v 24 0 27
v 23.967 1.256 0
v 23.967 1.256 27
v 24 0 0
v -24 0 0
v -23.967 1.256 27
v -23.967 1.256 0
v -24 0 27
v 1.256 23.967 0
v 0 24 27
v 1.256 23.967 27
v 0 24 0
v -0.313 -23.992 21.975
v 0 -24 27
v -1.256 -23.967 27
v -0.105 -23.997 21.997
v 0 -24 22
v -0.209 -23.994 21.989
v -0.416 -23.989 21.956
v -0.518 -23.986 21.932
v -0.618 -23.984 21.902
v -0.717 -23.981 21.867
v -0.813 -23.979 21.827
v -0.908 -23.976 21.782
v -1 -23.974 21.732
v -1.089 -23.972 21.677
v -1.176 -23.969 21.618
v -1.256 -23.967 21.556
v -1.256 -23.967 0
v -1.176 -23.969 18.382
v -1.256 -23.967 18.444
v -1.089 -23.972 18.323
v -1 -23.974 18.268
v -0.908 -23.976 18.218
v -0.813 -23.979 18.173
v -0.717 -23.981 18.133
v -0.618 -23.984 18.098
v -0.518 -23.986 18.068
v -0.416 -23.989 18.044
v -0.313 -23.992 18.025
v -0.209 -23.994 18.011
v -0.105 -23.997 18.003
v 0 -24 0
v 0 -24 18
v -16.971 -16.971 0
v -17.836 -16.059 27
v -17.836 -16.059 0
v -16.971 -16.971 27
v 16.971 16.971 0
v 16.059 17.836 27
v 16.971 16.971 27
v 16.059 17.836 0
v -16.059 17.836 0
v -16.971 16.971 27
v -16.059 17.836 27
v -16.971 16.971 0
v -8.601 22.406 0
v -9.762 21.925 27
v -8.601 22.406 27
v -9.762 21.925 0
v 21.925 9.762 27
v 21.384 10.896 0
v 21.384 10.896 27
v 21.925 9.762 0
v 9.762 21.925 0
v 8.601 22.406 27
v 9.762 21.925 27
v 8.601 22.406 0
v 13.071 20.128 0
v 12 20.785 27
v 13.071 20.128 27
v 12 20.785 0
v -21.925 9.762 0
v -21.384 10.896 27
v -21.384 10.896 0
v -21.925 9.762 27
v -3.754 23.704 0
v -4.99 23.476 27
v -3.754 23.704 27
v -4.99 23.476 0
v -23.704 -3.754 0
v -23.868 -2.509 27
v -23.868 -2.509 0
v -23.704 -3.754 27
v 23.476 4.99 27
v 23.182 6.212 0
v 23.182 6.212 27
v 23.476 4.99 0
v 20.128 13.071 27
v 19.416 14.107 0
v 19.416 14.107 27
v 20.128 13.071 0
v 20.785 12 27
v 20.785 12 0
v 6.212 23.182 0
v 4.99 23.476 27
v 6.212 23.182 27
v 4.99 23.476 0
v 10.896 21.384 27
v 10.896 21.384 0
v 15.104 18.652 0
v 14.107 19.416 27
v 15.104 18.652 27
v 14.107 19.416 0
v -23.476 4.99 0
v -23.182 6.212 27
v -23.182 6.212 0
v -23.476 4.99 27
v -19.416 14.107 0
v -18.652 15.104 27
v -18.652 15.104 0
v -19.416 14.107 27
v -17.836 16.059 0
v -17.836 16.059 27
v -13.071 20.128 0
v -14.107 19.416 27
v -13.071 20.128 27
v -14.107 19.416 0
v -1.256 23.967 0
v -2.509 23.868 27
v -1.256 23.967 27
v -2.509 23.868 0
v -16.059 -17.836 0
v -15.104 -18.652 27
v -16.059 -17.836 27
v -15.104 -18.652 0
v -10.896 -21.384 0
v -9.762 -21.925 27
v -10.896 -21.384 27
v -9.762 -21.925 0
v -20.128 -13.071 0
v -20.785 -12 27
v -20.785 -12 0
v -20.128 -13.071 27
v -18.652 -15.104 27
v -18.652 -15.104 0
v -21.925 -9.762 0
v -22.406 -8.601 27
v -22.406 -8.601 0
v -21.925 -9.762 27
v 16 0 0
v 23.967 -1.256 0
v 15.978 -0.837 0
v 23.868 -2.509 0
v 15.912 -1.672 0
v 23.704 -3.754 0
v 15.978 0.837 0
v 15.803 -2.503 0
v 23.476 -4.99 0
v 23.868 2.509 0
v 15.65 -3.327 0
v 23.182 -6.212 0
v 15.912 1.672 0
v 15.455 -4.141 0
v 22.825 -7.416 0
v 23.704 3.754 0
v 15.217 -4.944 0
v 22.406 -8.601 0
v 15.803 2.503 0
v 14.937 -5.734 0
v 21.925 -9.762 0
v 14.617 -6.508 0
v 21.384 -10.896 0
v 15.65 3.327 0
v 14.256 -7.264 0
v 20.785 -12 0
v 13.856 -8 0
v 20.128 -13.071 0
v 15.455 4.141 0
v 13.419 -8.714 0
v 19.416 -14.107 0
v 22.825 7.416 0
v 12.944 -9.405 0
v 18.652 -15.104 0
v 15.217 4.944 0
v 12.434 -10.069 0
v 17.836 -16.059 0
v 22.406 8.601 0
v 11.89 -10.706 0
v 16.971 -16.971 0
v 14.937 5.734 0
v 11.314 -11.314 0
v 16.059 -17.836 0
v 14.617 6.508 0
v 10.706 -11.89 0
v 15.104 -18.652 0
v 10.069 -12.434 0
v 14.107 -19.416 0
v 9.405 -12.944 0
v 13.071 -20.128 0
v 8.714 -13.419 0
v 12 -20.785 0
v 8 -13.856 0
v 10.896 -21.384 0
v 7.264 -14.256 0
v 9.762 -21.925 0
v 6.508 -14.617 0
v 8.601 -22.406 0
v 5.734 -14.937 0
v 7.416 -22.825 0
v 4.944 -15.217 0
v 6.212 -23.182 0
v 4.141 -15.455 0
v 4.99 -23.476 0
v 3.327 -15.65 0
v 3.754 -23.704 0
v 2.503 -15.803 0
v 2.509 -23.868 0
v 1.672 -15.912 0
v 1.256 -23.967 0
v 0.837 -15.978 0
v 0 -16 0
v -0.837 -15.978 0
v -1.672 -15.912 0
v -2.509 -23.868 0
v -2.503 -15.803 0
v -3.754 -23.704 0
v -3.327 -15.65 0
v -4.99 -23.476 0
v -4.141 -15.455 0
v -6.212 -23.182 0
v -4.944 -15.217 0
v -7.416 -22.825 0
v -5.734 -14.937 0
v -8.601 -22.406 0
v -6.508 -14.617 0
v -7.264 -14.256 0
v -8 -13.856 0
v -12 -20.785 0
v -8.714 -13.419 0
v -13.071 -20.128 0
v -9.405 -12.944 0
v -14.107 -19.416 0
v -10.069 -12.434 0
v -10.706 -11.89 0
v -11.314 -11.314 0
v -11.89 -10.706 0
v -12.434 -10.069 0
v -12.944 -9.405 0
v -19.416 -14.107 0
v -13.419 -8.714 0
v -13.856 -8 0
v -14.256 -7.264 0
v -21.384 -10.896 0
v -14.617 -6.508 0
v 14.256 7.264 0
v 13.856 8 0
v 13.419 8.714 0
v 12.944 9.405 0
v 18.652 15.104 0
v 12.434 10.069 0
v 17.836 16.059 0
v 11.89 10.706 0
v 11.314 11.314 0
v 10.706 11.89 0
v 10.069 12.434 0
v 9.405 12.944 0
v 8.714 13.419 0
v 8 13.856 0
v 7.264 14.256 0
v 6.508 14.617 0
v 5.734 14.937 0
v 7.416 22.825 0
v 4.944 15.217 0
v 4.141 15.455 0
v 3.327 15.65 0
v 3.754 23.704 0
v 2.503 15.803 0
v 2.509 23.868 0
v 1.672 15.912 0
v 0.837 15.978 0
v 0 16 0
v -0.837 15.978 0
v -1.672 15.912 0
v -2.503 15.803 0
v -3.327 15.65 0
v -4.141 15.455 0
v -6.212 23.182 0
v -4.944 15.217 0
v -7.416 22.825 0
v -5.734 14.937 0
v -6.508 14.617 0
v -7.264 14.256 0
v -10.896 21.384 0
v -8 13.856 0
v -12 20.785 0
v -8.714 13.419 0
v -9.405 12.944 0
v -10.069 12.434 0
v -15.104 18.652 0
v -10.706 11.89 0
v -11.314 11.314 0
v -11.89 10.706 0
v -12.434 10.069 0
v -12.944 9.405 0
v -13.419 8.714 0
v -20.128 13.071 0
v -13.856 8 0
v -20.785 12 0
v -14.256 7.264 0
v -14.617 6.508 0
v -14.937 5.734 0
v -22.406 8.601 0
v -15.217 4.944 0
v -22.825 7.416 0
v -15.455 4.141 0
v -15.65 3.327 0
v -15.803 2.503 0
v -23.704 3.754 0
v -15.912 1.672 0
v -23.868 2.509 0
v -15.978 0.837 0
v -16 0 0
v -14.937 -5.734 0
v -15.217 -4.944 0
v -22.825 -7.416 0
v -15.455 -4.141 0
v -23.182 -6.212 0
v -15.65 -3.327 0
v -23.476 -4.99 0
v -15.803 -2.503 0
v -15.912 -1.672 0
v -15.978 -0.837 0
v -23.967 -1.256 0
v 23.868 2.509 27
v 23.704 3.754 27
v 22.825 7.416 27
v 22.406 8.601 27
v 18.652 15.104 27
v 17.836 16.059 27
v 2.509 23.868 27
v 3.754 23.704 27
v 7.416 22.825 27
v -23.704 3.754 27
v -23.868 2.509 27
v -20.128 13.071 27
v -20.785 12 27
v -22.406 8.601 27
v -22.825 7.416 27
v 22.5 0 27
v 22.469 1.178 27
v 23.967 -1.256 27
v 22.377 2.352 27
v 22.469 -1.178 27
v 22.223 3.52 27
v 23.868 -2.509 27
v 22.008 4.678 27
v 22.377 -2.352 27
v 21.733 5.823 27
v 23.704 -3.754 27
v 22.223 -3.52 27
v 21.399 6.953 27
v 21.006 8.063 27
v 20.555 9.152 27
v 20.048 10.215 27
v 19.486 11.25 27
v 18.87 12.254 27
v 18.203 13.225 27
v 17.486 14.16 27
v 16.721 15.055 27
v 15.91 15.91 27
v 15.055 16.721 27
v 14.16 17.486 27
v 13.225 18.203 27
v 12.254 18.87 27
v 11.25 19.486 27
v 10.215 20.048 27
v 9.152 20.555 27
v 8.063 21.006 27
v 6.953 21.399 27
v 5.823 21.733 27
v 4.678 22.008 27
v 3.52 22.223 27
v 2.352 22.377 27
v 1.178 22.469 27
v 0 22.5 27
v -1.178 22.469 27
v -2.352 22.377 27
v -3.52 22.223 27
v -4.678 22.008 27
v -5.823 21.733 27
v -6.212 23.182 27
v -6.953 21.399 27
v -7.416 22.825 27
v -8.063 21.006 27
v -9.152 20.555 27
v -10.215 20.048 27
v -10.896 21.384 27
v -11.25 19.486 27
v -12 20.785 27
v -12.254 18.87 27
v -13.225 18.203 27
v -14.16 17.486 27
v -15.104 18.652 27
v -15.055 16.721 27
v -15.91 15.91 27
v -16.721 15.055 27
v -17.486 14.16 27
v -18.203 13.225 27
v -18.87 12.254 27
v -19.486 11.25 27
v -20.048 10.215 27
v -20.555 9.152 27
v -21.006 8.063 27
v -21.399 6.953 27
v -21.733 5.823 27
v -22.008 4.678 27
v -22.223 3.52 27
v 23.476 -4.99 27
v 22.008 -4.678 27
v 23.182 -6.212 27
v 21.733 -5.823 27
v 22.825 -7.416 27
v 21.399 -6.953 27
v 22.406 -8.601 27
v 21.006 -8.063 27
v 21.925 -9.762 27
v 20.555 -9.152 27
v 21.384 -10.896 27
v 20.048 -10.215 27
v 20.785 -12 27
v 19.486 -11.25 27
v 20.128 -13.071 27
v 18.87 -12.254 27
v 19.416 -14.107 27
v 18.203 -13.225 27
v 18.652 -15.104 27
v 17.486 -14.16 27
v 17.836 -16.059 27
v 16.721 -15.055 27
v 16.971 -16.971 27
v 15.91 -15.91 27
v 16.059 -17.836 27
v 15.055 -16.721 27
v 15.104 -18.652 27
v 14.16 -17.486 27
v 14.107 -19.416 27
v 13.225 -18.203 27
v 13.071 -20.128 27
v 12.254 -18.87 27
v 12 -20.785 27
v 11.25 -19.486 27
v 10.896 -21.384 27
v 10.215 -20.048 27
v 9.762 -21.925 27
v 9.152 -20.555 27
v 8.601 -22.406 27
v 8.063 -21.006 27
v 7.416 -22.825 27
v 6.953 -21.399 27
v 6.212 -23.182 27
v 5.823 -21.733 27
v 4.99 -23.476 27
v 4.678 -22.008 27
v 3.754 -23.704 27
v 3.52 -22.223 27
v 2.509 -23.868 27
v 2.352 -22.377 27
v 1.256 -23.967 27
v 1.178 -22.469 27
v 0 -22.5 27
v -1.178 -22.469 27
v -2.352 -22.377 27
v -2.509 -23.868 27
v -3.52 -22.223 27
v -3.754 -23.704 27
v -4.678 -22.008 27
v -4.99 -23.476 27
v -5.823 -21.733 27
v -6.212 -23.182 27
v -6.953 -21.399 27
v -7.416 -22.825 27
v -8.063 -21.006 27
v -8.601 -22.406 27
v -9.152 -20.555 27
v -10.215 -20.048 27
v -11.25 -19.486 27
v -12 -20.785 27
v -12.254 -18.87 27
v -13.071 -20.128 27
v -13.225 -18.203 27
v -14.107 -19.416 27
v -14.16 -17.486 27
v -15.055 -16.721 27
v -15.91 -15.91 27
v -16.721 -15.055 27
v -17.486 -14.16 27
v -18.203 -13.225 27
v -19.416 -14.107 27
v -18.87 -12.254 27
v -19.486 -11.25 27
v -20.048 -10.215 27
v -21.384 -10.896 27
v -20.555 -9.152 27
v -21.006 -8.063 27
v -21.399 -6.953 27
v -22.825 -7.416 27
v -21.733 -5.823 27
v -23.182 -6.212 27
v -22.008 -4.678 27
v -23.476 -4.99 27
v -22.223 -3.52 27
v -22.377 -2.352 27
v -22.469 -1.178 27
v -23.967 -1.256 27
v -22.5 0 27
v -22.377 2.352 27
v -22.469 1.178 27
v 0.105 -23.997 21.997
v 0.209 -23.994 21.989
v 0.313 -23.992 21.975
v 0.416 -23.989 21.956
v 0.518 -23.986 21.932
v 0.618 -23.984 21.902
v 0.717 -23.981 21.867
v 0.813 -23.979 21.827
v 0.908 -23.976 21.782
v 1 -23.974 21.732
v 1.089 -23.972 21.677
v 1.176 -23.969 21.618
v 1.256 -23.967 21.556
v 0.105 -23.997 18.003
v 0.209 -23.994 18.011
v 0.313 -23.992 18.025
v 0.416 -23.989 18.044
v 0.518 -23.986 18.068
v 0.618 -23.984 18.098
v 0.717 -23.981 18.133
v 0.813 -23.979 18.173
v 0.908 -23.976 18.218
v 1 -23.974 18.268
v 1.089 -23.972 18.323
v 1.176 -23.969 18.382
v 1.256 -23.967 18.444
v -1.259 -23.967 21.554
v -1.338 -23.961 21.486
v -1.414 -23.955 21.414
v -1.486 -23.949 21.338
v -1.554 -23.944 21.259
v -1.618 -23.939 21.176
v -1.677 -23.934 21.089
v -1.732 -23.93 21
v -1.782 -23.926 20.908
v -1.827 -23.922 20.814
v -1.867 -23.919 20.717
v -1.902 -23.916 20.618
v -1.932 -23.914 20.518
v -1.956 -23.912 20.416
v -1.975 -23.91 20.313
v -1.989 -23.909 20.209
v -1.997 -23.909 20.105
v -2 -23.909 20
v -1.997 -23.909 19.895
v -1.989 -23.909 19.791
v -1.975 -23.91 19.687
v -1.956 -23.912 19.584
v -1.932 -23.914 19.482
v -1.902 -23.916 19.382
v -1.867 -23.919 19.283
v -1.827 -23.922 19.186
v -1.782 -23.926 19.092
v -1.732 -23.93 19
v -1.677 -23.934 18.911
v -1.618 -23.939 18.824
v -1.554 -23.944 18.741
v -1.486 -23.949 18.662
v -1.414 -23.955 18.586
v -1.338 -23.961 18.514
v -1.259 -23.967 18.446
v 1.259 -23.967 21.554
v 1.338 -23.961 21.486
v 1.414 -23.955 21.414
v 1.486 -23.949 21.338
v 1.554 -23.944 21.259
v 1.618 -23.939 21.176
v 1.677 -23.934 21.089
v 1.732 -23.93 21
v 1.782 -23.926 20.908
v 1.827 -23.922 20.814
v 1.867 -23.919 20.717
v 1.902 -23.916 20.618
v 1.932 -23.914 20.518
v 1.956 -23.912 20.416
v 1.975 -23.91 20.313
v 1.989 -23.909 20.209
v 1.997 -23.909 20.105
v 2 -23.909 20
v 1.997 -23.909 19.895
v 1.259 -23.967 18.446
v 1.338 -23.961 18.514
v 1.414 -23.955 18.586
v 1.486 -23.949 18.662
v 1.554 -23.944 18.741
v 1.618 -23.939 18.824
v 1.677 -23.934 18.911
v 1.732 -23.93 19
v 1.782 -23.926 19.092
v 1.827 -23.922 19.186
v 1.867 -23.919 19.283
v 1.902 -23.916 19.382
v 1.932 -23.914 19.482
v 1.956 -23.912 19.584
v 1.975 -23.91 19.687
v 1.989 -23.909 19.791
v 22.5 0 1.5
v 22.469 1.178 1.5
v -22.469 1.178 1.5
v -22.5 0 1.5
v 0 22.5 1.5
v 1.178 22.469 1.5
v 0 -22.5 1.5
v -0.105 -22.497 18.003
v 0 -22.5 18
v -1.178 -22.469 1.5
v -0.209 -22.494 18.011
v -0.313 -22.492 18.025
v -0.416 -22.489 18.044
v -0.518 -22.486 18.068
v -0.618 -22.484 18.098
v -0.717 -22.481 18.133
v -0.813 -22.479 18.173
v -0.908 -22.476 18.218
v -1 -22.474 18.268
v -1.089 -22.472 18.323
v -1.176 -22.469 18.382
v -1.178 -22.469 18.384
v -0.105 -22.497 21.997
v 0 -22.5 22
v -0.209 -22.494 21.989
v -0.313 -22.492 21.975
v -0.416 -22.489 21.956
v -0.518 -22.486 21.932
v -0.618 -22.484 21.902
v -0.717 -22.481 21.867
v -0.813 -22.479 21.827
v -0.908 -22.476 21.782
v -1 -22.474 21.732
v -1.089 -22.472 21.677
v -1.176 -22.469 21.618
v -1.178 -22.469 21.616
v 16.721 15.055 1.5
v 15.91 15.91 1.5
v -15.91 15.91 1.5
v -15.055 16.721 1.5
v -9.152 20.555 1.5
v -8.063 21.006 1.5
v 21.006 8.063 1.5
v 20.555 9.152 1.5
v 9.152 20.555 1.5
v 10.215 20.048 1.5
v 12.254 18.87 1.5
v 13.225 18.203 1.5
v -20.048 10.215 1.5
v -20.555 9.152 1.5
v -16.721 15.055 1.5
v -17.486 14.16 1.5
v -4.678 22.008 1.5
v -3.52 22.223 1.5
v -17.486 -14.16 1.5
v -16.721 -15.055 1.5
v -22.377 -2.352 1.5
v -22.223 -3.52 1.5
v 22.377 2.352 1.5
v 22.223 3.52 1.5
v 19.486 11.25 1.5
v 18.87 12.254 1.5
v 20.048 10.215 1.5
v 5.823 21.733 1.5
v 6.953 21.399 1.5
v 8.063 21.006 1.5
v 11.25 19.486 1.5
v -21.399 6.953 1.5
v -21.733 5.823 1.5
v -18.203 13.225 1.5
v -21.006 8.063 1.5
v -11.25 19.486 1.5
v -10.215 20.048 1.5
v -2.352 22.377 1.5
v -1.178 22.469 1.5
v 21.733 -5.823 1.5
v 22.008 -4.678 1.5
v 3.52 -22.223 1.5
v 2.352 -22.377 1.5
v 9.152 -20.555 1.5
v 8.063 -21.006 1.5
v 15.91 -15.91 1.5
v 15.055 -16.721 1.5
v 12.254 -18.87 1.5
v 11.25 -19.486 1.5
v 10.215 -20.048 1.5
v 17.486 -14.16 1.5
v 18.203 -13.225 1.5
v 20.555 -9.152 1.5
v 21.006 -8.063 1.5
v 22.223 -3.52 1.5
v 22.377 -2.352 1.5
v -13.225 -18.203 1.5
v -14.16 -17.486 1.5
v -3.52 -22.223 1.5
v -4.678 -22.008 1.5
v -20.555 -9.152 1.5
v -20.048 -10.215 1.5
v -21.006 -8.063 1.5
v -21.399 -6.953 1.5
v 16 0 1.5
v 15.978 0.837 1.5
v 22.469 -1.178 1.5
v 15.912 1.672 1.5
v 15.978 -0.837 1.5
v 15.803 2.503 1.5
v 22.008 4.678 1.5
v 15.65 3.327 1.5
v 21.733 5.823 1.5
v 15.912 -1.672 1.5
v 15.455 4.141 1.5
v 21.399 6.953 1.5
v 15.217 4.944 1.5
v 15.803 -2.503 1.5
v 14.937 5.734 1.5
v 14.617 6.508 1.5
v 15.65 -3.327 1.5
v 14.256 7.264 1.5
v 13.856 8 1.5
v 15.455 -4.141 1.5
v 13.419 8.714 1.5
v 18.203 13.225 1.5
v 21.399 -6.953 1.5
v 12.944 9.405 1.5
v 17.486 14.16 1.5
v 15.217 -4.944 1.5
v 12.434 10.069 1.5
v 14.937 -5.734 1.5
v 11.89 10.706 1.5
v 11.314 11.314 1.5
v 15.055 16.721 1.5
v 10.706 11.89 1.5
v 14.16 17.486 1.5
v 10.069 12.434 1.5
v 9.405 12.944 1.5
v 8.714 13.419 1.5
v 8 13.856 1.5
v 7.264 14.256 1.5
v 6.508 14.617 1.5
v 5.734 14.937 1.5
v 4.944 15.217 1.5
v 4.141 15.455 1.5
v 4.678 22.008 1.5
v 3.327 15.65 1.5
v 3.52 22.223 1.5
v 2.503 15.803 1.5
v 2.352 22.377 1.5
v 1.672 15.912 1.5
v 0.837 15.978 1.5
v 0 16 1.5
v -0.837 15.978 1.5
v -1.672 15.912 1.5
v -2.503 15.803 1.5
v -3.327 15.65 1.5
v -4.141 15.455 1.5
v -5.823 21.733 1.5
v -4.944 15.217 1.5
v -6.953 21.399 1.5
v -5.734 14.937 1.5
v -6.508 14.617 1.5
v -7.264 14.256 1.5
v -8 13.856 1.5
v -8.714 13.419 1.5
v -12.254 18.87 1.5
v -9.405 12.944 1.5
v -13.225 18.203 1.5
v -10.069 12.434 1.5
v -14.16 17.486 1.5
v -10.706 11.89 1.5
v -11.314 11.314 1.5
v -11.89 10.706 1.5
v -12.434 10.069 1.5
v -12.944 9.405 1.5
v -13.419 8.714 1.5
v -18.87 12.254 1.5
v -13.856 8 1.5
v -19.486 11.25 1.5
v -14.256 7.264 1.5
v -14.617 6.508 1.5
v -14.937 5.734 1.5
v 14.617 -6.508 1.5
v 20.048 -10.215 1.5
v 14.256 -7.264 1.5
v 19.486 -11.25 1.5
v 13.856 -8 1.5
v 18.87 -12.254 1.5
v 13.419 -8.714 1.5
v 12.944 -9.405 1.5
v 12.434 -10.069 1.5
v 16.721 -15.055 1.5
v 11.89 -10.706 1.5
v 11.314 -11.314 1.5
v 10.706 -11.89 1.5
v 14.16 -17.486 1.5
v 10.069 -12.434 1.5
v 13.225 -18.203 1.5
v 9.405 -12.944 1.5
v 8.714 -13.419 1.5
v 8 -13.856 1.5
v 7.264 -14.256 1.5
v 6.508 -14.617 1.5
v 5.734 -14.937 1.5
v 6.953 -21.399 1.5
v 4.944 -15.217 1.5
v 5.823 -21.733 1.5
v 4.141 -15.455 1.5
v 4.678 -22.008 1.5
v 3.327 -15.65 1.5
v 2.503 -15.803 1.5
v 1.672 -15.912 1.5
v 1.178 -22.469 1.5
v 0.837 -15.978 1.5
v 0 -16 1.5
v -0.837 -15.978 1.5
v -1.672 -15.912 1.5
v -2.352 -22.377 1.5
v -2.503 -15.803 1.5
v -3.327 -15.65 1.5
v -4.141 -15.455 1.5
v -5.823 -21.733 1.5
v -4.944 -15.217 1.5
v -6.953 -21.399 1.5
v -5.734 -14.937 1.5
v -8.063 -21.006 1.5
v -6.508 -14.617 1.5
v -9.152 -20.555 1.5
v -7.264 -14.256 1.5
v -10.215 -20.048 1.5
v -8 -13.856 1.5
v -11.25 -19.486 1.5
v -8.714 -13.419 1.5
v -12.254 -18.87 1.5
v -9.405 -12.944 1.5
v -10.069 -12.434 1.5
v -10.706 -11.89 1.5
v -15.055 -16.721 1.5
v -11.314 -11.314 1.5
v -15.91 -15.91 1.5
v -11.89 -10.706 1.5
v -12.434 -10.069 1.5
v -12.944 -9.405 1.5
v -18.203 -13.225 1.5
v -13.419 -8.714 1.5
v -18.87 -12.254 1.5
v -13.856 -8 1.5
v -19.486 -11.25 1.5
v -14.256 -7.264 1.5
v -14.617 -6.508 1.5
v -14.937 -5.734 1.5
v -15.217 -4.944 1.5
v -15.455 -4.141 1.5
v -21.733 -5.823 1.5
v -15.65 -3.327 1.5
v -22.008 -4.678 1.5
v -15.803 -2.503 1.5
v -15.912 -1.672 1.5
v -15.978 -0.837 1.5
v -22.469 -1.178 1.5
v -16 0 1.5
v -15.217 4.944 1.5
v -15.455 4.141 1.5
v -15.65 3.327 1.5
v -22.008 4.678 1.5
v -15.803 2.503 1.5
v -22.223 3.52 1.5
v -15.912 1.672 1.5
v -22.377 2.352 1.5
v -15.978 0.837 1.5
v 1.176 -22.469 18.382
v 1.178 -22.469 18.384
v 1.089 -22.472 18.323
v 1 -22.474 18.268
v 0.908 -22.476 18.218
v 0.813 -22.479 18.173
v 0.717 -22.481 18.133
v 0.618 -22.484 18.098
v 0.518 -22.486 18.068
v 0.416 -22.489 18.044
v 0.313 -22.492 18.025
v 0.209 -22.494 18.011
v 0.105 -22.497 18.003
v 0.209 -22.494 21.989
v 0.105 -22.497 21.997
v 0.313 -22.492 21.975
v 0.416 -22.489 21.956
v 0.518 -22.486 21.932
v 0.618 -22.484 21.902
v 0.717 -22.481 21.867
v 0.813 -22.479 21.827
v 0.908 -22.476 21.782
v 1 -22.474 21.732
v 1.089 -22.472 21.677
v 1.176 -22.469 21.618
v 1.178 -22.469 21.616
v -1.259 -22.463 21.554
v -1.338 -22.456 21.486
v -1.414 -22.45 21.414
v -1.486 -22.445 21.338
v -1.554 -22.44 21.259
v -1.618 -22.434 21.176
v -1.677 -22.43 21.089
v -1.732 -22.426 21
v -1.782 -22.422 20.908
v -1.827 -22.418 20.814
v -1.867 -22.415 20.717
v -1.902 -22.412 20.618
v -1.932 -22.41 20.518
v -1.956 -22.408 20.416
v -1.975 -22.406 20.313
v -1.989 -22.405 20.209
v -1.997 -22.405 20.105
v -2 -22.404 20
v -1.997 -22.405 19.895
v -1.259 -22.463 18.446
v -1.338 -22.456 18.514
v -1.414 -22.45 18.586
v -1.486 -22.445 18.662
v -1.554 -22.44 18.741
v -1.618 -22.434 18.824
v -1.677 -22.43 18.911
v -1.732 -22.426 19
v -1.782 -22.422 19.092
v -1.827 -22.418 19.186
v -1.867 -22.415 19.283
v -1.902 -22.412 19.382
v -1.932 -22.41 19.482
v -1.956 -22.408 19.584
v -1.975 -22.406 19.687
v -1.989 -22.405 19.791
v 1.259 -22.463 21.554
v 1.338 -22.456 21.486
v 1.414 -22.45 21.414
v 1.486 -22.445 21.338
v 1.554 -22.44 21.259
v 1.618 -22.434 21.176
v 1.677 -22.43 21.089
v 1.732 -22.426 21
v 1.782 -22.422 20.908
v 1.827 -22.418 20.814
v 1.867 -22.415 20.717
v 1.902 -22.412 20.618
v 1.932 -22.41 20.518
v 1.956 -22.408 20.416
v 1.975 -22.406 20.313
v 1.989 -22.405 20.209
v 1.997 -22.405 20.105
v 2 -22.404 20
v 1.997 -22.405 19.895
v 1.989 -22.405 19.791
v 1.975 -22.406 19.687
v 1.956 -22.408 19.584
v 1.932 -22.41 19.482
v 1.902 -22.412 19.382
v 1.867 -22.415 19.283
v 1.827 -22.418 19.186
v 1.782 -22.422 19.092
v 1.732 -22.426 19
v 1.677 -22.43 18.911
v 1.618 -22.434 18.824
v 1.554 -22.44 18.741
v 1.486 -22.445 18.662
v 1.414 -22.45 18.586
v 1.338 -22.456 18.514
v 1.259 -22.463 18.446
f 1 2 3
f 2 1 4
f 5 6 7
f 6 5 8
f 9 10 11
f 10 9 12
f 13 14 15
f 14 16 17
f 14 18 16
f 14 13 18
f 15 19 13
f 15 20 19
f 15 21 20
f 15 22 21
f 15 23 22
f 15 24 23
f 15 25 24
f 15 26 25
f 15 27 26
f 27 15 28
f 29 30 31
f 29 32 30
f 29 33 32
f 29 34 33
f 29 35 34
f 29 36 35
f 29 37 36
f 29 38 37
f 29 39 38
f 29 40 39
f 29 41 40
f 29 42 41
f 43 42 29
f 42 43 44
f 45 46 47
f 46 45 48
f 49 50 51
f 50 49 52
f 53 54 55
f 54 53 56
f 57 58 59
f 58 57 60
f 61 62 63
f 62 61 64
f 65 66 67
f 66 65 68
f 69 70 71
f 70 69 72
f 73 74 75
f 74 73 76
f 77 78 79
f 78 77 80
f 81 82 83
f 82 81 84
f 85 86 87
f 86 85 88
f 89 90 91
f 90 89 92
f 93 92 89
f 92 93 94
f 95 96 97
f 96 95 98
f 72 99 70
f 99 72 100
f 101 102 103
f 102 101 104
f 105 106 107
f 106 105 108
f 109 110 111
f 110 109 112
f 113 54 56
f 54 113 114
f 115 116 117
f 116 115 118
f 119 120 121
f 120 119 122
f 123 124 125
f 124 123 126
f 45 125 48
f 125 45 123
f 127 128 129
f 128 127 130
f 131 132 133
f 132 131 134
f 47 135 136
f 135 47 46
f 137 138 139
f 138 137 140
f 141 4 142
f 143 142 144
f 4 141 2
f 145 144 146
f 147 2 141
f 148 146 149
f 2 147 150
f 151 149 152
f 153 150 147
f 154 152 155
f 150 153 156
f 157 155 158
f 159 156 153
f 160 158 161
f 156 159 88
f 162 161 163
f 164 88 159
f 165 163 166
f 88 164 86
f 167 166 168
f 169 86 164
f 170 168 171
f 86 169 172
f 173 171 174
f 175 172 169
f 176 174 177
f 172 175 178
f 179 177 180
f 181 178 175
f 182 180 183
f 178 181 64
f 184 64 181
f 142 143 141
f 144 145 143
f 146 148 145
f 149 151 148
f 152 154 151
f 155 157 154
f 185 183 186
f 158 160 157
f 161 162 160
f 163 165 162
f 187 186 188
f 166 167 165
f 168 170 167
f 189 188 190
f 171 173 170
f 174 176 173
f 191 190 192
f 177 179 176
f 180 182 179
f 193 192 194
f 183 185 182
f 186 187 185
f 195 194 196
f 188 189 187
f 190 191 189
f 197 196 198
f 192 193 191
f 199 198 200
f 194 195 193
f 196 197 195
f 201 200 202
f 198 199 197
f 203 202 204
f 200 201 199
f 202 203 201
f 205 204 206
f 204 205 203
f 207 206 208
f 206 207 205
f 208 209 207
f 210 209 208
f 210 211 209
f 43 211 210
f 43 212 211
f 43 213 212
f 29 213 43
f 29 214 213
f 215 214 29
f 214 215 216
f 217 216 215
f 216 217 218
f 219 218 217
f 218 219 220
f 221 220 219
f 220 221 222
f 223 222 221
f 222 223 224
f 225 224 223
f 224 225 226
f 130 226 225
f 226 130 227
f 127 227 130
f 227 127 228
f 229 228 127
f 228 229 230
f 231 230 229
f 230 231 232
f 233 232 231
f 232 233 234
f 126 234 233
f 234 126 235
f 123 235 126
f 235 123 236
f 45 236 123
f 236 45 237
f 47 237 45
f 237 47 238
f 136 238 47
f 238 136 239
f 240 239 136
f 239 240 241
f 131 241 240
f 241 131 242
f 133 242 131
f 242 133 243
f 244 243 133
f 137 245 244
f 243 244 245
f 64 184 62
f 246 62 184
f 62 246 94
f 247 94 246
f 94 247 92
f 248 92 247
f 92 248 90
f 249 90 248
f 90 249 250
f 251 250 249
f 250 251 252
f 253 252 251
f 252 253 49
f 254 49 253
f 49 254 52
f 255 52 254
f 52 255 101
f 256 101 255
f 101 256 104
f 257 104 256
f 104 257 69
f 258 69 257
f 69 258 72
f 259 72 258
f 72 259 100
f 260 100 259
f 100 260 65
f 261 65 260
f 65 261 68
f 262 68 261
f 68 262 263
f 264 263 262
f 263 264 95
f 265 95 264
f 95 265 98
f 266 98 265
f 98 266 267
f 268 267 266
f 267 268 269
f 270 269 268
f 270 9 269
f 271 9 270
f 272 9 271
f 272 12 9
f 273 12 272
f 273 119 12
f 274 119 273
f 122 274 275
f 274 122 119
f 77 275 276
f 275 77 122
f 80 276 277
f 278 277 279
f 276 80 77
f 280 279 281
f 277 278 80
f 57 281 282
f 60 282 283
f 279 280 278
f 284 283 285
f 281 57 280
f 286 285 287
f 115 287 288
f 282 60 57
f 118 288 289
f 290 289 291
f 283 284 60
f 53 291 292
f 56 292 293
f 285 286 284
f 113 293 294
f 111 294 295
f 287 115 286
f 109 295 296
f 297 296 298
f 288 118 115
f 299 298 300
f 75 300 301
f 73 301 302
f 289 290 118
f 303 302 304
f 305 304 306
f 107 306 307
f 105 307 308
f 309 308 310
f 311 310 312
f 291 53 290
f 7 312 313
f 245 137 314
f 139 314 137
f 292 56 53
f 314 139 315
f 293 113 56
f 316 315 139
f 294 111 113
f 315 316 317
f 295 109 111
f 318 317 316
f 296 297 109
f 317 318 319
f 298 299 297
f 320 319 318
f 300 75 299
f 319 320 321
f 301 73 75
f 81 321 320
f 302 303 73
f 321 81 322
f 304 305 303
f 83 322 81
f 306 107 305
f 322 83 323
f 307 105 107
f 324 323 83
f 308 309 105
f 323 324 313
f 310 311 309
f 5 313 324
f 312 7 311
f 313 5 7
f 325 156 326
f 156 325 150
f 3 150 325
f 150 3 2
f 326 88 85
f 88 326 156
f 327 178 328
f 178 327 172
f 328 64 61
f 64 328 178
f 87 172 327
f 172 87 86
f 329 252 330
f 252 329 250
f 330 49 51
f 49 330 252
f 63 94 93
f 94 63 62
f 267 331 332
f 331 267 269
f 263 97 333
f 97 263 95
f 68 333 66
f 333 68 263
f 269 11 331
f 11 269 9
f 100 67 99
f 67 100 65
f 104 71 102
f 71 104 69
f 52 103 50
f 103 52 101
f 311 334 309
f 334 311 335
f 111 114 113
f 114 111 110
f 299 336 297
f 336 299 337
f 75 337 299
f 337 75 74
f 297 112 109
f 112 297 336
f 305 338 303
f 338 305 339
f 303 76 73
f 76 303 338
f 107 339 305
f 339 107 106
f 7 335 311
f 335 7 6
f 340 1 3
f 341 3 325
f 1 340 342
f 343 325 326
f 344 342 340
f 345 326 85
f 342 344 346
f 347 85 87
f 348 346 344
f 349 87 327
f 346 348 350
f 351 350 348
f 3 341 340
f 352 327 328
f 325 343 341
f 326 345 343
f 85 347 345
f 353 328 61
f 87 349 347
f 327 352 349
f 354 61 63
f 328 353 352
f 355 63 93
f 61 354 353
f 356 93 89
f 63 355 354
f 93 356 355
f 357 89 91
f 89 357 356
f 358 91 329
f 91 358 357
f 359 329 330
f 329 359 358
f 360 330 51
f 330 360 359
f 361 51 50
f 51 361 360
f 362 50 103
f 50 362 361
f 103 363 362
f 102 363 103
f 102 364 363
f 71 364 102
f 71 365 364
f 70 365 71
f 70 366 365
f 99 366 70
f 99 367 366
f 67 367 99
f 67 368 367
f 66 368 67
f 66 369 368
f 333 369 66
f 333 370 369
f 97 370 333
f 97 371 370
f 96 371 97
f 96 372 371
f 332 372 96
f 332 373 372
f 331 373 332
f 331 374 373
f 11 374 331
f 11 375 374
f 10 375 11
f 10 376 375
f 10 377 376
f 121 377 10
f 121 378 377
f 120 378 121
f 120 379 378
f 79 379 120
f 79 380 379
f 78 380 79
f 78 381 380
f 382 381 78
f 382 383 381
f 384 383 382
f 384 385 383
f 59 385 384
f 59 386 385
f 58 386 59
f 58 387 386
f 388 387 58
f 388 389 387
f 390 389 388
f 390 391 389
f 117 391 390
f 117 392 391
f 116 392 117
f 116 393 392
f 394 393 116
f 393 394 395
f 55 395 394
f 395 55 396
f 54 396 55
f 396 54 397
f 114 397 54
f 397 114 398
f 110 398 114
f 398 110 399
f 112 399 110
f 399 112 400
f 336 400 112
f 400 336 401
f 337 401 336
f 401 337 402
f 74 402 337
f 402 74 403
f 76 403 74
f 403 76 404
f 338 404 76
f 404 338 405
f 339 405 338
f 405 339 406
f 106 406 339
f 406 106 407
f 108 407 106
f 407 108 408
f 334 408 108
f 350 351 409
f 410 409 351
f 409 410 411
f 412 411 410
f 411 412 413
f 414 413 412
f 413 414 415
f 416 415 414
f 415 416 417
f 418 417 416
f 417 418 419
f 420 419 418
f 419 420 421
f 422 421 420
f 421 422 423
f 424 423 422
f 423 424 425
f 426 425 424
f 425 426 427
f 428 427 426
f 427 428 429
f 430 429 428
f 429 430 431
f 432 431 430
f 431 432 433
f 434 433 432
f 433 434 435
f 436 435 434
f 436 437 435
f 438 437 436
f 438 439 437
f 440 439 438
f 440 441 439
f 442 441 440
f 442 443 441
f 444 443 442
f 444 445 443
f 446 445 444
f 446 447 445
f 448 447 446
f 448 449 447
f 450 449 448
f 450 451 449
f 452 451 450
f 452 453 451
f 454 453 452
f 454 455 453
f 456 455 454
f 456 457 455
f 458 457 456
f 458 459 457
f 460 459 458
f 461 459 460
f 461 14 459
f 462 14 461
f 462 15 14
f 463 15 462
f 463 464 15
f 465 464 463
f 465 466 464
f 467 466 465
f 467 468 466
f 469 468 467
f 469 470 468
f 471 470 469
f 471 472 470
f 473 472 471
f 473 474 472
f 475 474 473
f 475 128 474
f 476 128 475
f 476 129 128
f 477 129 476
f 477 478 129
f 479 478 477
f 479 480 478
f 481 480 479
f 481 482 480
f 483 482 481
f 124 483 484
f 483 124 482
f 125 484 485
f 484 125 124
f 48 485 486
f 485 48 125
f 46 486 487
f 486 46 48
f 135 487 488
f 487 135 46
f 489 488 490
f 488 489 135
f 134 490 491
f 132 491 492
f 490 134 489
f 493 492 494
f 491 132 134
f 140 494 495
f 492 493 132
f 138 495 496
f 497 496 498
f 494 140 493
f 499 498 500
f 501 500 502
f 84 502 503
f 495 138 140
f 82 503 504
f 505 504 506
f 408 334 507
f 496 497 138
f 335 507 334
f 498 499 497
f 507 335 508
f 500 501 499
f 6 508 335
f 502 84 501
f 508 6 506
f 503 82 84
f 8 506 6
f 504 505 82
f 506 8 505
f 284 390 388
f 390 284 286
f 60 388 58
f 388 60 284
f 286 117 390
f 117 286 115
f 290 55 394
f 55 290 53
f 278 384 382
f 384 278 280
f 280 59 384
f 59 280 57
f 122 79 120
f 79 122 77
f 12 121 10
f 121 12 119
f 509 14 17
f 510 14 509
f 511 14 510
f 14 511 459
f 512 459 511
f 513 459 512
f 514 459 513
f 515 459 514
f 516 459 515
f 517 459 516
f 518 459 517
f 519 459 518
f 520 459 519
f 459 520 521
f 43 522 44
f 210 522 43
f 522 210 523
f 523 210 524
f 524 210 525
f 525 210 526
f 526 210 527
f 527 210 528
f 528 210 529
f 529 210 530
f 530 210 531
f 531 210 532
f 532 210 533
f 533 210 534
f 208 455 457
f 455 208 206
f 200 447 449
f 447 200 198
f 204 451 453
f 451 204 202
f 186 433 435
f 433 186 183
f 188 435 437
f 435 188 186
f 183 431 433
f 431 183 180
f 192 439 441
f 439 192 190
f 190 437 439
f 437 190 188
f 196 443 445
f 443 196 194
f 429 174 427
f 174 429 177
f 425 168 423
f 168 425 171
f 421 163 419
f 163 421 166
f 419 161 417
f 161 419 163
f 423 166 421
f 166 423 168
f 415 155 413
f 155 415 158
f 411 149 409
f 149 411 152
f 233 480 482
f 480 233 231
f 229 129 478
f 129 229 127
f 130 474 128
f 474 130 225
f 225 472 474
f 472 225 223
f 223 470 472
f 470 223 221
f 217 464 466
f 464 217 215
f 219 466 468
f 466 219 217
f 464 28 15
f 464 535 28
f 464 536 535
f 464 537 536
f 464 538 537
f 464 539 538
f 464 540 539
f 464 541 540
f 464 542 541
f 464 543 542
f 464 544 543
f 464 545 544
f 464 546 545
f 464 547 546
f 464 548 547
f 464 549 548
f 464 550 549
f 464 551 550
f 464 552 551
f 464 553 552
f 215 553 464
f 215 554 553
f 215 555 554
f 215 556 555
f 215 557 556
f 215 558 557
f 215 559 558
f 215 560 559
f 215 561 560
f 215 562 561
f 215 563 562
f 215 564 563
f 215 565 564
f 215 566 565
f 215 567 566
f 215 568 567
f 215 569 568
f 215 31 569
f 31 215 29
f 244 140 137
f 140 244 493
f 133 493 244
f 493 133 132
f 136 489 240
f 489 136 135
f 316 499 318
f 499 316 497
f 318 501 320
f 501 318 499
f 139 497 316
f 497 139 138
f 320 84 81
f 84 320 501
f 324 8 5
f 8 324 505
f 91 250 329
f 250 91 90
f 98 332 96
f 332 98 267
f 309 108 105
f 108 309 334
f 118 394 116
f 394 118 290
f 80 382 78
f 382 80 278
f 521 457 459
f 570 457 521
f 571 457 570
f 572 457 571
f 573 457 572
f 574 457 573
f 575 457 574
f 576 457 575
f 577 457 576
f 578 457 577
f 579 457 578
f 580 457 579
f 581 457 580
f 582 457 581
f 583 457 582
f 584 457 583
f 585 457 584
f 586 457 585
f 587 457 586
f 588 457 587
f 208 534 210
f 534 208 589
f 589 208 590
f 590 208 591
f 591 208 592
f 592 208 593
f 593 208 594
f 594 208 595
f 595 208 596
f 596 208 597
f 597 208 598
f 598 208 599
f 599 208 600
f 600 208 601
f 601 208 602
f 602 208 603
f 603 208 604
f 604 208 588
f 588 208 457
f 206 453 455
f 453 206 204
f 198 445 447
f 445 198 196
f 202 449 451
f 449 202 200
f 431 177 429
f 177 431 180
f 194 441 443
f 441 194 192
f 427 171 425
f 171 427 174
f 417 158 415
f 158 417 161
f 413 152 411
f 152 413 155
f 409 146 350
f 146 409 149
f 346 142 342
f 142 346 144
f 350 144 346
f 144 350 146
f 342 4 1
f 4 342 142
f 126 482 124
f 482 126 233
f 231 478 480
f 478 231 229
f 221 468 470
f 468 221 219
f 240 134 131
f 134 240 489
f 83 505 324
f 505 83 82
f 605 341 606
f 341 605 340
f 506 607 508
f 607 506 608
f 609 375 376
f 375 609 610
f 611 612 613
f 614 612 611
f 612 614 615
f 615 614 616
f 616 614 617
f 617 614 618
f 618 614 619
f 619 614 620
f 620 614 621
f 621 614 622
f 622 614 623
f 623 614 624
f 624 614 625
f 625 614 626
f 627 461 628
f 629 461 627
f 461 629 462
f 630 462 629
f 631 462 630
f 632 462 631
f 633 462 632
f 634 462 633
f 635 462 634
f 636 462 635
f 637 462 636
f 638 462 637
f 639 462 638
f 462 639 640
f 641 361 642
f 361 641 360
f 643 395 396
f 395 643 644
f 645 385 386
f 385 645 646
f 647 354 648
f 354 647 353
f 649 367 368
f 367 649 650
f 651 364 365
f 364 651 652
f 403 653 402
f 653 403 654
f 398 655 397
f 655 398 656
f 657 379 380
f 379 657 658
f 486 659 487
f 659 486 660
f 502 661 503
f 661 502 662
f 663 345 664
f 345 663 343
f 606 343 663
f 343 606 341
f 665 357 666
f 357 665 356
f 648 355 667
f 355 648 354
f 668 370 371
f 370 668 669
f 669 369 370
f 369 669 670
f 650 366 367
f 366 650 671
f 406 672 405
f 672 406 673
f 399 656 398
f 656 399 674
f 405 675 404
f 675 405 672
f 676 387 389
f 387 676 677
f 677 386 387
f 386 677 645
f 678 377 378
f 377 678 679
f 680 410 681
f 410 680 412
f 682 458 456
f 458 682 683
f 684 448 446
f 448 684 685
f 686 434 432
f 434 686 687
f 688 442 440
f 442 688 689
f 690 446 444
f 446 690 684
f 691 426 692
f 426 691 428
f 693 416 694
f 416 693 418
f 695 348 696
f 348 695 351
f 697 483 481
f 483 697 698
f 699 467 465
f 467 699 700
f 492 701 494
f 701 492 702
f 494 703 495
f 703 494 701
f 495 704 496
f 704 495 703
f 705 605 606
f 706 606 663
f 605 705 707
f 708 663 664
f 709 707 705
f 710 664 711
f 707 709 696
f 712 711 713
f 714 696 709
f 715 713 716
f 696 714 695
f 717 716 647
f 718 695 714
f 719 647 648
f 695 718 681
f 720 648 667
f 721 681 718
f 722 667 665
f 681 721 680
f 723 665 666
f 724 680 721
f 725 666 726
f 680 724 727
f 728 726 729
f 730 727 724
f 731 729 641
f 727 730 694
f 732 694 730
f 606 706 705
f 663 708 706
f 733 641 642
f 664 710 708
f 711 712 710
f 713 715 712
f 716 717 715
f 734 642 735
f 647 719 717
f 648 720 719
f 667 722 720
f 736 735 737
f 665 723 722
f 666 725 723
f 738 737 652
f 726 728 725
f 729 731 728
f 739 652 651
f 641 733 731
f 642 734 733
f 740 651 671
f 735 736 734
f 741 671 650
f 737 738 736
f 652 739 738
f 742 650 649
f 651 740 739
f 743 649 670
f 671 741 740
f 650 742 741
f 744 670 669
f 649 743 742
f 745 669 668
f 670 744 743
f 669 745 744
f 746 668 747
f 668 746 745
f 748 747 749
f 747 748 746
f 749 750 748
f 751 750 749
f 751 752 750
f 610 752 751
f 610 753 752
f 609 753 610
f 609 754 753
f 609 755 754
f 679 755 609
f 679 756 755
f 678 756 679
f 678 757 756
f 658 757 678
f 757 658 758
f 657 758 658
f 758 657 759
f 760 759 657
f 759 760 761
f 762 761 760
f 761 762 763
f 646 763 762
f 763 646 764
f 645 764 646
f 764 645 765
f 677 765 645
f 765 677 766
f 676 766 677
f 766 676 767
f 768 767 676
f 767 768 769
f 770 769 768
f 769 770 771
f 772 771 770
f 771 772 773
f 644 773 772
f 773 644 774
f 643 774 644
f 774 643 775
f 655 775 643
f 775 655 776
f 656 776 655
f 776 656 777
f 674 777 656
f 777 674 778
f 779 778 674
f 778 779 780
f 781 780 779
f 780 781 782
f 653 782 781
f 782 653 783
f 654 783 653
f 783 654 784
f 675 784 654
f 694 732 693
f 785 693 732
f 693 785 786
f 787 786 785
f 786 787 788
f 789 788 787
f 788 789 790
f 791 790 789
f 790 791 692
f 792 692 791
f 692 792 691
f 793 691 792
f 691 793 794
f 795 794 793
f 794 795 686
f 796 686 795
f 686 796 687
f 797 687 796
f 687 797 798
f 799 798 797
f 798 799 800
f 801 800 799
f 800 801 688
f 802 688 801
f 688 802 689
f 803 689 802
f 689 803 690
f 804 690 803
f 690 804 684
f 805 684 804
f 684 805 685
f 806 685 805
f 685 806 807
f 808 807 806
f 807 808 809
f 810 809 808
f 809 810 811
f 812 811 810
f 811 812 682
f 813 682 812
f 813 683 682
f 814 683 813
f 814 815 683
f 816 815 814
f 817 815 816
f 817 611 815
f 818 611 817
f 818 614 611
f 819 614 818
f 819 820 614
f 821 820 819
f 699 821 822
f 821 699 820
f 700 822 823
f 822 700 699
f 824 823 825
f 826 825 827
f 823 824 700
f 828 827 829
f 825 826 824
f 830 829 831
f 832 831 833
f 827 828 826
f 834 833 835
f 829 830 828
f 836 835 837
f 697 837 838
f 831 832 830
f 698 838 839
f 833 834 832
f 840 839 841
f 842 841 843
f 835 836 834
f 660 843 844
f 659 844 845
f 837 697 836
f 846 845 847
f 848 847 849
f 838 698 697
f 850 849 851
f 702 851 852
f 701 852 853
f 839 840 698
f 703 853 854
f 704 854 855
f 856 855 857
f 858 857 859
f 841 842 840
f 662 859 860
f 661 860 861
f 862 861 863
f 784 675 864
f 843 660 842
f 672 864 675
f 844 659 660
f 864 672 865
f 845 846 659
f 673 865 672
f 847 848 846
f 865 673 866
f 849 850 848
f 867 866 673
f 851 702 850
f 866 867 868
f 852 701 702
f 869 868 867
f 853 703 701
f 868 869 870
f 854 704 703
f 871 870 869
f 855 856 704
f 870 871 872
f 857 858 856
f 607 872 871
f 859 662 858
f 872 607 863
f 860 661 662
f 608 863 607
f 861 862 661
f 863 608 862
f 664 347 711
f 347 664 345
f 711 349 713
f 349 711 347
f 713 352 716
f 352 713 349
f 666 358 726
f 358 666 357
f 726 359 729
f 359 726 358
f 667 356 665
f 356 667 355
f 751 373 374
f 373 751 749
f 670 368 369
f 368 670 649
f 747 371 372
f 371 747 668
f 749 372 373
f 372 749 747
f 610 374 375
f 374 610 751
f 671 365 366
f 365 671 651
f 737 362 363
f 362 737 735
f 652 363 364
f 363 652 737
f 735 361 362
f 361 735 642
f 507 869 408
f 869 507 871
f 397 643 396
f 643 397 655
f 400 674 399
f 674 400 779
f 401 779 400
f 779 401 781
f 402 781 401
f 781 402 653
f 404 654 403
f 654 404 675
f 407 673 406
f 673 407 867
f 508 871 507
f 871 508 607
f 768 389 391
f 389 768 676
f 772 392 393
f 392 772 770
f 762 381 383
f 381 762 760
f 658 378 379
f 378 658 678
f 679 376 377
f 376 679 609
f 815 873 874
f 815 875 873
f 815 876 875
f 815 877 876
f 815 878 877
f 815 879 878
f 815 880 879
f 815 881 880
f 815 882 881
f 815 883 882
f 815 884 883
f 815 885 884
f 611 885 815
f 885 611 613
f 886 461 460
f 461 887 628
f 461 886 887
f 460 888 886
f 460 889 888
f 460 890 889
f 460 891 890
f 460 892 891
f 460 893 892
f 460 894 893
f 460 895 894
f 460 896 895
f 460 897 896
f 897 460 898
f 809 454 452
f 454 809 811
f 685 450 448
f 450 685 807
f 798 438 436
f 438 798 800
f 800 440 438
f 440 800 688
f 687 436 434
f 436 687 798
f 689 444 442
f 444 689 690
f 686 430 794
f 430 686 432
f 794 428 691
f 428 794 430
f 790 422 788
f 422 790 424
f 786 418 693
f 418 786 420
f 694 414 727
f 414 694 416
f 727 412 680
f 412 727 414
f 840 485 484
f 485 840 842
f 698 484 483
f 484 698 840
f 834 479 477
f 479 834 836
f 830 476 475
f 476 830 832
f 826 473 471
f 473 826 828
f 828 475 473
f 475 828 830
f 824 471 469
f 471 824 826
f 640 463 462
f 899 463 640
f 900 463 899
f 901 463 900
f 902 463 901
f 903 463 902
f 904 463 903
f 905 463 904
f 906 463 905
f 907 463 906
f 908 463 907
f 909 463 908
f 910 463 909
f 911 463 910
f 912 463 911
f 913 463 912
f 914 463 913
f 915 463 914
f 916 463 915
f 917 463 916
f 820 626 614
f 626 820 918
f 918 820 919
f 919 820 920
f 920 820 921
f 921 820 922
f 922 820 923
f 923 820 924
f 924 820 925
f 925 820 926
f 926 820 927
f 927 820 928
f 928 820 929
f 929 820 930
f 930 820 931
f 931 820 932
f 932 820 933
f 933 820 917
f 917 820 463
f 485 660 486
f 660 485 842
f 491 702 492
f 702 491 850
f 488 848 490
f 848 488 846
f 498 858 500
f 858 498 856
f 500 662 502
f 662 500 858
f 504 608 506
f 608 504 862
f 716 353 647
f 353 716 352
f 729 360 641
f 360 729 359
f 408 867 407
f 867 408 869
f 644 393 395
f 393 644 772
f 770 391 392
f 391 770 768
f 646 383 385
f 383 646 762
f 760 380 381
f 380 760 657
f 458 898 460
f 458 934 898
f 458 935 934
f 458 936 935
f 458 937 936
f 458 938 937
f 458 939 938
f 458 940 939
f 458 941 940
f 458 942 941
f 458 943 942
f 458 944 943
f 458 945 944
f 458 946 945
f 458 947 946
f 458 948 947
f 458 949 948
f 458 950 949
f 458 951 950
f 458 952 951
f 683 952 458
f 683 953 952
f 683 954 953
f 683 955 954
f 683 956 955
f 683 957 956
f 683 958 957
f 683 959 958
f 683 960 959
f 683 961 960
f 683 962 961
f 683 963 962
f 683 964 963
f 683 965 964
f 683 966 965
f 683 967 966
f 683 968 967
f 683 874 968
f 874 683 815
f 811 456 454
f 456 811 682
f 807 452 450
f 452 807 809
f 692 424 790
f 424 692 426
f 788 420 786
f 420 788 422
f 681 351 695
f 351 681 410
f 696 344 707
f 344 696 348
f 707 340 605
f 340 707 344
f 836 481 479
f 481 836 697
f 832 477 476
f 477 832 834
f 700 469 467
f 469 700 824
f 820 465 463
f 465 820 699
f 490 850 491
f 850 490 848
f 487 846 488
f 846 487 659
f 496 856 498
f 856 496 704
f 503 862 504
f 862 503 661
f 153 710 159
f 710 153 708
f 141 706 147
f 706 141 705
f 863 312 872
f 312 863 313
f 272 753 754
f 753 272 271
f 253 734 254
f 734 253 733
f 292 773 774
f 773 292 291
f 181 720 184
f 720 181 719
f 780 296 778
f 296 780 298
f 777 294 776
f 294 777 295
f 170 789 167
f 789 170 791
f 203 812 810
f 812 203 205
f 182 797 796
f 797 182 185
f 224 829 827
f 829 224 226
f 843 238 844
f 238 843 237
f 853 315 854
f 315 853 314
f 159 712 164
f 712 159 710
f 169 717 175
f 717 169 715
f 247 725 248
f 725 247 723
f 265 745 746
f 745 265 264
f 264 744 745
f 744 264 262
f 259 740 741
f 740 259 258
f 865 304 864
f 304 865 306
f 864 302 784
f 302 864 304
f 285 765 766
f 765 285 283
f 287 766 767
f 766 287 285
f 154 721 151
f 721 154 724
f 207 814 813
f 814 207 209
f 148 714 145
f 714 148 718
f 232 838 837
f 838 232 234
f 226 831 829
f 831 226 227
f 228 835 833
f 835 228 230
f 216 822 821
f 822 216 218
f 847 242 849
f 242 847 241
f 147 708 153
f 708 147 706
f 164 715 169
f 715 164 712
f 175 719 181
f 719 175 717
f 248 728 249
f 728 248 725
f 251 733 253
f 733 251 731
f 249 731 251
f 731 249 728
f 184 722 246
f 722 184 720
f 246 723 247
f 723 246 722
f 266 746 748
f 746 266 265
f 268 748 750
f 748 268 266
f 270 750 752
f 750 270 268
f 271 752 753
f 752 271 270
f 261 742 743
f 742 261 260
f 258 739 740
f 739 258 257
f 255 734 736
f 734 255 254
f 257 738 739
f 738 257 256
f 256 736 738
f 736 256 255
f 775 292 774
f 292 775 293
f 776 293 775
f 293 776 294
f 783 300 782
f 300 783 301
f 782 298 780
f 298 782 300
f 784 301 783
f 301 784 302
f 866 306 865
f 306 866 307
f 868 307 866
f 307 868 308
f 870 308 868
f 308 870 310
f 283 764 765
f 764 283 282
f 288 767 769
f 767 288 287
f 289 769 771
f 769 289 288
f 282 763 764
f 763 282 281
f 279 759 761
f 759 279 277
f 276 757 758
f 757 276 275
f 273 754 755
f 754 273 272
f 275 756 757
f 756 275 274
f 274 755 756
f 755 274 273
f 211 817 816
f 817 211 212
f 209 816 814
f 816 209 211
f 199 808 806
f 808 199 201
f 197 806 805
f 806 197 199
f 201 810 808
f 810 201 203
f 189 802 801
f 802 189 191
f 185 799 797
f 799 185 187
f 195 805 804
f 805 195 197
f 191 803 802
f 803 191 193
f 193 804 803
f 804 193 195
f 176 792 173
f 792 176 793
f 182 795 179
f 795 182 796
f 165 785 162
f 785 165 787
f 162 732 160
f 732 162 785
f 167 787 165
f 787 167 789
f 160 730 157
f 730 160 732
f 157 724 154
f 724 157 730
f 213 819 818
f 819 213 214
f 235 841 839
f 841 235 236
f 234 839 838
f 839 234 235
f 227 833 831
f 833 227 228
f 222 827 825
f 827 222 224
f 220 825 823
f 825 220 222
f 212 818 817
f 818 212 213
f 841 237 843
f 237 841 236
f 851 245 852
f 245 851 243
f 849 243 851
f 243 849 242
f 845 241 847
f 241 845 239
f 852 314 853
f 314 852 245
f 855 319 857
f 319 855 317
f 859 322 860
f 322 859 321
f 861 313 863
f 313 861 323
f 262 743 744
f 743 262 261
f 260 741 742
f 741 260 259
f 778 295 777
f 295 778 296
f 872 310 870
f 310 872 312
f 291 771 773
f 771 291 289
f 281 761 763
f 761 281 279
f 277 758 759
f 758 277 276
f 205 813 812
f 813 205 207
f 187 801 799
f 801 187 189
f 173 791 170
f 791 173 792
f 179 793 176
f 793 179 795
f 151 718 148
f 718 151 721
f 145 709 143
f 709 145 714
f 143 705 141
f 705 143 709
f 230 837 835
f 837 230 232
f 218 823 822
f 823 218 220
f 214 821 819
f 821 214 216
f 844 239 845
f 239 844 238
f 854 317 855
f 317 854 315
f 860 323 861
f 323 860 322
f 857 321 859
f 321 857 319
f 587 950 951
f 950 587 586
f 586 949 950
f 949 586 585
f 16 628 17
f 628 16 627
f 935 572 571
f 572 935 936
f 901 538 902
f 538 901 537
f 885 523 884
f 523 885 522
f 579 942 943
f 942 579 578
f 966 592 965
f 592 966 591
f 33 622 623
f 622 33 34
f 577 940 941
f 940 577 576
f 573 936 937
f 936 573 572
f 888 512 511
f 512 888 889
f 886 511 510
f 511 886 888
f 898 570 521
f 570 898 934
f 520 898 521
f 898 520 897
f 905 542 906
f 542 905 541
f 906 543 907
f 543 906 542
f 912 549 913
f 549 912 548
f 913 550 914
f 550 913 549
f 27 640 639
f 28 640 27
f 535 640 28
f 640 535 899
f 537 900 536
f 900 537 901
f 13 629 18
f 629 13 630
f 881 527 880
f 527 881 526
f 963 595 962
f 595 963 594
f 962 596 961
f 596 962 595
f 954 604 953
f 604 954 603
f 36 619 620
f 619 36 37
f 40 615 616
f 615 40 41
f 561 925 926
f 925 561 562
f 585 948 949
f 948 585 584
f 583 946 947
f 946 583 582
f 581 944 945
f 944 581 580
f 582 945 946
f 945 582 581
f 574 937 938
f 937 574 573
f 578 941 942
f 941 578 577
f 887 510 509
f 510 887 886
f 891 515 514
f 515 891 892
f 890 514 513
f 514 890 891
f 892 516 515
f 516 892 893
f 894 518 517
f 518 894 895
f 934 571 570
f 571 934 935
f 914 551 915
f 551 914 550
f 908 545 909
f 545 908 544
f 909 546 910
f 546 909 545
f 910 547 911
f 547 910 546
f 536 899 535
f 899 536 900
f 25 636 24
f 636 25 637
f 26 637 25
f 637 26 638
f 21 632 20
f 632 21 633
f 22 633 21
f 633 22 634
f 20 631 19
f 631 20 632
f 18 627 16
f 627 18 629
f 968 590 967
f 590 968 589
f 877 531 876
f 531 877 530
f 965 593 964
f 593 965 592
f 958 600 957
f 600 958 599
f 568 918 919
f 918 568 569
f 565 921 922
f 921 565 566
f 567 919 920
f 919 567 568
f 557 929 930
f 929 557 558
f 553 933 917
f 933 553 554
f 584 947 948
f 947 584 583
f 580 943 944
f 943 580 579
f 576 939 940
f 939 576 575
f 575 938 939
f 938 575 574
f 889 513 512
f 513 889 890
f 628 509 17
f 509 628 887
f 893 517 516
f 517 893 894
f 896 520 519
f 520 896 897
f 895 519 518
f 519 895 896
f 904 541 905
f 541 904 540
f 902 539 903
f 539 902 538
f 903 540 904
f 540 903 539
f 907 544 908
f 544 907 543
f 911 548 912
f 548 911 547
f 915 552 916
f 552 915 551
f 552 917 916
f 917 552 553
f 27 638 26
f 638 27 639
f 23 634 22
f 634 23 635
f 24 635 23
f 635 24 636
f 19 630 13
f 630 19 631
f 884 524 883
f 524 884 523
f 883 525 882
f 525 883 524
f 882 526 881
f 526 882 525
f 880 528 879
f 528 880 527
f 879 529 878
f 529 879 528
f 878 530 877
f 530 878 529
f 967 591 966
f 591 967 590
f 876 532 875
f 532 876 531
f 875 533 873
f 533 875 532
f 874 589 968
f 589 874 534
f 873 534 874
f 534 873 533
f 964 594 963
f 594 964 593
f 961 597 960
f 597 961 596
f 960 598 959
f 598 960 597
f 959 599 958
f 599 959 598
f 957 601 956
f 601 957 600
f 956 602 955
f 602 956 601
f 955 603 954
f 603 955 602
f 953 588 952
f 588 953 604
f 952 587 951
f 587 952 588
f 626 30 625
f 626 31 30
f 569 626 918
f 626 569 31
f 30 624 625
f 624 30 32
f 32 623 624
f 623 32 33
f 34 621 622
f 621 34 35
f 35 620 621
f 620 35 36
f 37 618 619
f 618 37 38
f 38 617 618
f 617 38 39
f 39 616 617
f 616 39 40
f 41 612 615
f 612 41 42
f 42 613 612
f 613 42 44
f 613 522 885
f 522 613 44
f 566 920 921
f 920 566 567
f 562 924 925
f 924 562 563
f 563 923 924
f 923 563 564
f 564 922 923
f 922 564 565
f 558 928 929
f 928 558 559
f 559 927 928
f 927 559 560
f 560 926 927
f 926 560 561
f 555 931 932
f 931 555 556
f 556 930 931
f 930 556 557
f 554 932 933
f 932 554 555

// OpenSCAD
height=27;
diameter=48;
thickness=1.5;
resolution=120;

difference() {
    cylinder(h=height, r=diameter/2, $fn=resolution);
    translate([0,0,thickness]) cylinder(h=100, r=diameter/2-thickness, $fn=resolution);
    translate([0,0,-5]) cylinder(h=100, r=16, $fn=resolution);
    rotate ([90,0,0]) translate([0,20,0]) cylinder(h=100, r=2, $fn=resolution);
}

module tab() {
    
}
